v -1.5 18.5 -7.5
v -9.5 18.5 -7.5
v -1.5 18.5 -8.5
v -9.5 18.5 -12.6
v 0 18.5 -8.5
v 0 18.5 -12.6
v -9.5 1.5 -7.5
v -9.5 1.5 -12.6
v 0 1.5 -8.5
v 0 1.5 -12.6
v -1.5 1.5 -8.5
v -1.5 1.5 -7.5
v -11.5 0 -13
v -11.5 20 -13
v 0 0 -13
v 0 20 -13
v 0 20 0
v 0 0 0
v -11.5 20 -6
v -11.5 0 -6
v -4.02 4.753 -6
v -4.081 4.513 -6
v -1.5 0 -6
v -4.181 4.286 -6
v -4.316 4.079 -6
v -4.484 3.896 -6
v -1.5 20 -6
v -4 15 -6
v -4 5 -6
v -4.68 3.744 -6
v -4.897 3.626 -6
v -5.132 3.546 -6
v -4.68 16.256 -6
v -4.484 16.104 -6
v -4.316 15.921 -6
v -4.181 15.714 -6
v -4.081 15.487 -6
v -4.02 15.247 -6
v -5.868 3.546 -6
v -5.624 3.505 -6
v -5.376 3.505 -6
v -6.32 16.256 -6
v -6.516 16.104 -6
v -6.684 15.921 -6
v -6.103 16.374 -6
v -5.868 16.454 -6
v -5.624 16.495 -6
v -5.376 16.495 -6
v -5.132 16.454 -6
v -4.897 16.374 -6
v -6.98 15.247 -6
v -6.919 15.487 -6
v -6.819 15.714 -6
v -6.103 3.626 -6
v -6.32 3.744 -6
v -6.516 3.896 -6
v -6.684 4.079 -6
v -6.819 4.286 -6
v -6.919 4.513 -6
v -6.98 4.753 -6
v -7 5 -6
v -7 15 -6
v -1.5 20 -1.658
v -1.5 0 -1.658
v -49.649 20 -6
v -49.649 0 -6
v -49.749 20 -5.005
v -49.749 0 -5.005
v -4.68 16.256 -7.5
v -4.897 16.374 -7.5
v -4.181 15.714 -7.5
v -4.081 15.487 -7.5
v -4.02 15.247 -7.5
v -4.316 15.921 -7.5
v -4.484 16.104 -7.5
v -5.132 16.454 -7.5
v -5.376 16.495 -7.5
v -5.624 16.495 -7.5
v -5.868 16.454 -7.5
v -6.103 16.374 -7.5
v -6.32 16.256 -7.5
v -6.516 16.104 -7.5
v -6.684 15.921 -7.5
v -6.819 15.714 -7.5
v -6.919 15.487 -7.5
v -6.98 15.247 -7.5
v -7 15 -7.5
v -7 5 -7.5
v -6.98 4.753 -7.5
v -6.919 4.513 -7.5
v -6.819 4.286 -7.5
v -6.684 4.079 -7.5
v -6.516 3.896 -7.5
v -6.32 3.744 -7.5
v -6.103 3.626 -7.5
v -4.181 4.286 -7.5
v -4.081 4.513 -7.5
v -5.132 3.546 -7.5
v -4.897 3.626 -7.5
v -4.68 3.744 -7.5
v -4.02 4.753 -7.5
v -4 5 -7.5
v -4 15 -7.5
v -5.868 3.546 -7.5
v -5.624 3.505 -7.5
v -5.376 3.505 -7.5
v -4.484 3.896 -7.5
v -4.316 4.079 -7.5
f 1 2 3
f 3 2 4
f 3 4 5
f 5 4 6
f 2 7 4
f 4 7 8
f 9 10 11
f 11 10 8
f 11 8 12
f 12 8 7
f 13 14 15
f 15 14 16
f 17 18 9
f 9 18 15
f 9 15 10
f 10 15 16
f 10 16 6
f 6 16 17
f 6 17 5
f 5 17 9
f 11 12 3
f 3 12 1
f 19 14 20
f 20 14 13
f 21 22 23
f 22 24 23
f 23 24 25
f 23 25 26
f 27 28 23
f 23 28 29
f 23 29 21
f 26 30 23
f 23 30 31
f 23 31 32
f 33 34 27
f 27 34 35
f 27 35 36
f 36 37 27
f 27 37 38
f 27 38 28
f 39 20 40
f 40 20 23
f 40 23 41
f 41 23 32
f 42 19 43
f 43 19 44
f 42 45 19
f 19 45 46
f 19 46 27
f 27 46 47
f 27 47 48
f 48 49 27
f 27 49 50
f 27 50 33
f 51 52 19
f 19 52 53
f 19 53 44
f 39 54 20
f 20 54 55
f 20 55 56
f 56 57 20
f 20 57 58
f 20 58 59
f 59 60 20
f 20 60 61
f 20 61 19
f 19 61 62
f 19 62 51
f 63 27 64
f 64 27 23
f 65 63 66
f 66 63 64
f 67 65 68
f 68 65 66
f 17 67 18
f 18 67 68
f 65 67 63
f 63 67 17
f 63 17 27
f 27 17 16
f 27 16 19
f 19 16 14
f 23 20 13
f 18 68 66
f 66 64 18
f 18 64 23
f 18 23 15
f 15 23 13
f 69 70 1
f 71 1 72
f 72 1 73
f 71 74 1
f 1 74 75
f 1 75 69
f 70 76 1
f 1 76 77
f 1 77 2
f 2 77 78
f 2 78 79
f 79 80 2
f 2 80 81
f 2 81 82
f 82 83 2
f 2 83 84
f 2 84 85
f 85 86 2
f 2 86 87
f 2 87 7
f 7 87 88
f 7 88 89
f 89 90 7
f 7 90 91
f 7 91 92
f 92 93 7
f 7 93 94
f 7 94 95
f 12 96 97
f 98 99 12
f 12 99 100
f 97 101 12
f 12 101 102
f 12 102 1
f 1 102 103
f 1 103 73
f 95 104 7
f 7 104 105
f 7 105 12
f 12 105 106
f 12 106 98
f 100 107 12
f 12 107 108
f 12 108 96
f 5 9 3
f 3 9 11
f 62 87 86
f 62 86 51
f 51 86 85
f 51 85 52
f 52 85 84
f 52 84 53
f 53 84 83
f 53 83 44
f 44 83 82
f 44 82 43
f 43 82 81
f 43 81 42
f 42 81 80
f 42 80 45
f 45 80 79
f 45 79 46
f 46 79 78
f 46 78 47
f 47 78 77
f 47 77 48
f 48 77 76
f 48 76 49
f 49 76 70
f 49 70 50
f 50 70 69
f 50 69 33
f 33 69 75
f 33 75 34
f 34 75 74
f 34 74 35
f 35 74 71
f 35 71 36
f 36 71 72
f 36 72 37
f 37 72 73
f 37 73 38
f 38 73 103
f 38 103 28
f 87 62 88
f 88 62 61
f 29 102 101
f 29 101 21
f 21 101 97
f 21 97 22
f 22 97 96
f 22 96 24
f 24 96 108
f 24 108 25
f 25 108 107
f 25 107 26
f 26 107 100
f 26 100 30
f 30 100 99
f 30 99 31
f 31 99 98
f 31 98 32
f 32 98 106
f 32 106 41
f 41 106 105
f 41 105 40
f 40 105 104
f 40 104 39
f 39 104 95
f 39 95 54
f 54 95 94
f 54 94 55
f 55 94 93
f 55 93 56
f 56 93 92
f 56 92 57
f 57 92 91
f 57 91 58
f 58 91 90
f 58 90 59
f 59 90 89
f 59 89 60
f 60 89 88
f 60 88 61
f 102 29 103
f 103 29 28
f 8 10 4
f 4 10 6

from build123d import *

# Parameters (mm, degrees)
SALIENTE_EXTRUIR1_DEPTH = 20
CROQUIS4_W              = 8
CROQUIS4_H              = 17
CORTAR_EXTRUIR2_DEPTH   = 5.5
CROQUIS4_4_W            = 1.5
CROQUIS4_4_H            = 17
CORTAR_EXTRUIR3_DEPTH   = 4.5
CORTAR_EXTRUIR4_REACH   = 56.141
SALIENTE_EXTRUIR3_REACH = 56.646
CROQUIS7_W              = 9.5
CROQUIS7_H              = 0.4


with BuildPart() as part:
    # Croquis1 → Saliente-Extruir1 (new body)
    with BuildSketch(Plane(origin=(0, 0, 0), x_dir=(1, 0, 0), z_dir=(0, 1, 0))):
        Polygon((-11.5, 13), (0, 13), (0, 0), (-49.748866803, 5.005022664), (-49.648766349, 6), (-1.5, 1.658480671), (-1.5, 6), (-11.5, 6), align=None)
    extrude(amount=SALIENTE_EXTRUIR1_DEPTH)

    # Croquis4 → Cortar-Extruir2 (cut)
    with BuildSketch(Plane(origin=(0, 0, -13), x_dir=(-1, 0, 0), z_dir=(0, 0, -1))):
        with Locations((5.5, 10)):
            Rectangle(CROQUIS4_W, CROQUIS4_H)
    extrude(amount=-CORTAR_EXTRUIR2_DEPTH, mode=Mode.SUBTRACT)

    # Croquis4<4> → Cortar-Extruir3 (cut)
    with BuildSketch(Plane(origin=(0, 0, -13), x_dir=(-1, 0, 0), z_dir=(0, 0, -1))):
        with Locations((0.75, 10)):
            Rectangle(CROQUIS4_4_W, CROQUIS4_4_H)
    extrude(amount=-CORTAR_EXTRUIR3_DEPTH, mode=Mode.SUBTRACT)

    # Croquis6 → Cortar-Extruir4 (cut, up to next)
    with BuildSketch(Plane(origin=(0, 0, -7.5), x_dir=(-1, 0, 0), z_dir=(0, 0, -1)), mode=Mode.PRIVATE) as cortar_extruir4_sk1:
        with BuildLine():
            Line((7, 15), (7, 5))
            ThreePointArc((7, 5), (5.5, 3.5), (4, 5))
            Line((4, 5), (4, 15))
            ThreePointArc((4, 15), (5.5, 16.5), (7, 15))
        make_face()
    cortar_extruir4_tool1 = extrude(cortar_extruir4_sk1.sketch, amount=-CORTAR_EXTRUIR4_REACH, mode=Mode.PRIVATE) & part.part
    add(cortar_extruir4_tool1.solids().sort_by_distance((-5.5, 10, -7.5))[0], mode=Mode.SUBTRACT)

    # Croquis7 → Saliente-Extruir3 (add, up to next)
    with BuildSketch(Plane(origin=(0, 1.5, 0), x_dir=(1, 0, 0), z_dir=(0, 1, 0)), mode=Mode.PRIVATE) as saliente_extruir3_sk1:
        with Locations((-4.75, 12.8)):
            Rectangle(CROQUIS7_W, CROQUIS7_H)
    saliente_extruir3_tool1 = extrude(saliente_extruir3_sk1.sketch, amount=SALIENTE_EXTRUIR3_REACH, mode=Mode.PRIVATE) - part.part
    add(saliente_extruir3_tool1.solids().sort_by_distance((-4.75, 1.5, -12.8))[0])


solid = part.part
